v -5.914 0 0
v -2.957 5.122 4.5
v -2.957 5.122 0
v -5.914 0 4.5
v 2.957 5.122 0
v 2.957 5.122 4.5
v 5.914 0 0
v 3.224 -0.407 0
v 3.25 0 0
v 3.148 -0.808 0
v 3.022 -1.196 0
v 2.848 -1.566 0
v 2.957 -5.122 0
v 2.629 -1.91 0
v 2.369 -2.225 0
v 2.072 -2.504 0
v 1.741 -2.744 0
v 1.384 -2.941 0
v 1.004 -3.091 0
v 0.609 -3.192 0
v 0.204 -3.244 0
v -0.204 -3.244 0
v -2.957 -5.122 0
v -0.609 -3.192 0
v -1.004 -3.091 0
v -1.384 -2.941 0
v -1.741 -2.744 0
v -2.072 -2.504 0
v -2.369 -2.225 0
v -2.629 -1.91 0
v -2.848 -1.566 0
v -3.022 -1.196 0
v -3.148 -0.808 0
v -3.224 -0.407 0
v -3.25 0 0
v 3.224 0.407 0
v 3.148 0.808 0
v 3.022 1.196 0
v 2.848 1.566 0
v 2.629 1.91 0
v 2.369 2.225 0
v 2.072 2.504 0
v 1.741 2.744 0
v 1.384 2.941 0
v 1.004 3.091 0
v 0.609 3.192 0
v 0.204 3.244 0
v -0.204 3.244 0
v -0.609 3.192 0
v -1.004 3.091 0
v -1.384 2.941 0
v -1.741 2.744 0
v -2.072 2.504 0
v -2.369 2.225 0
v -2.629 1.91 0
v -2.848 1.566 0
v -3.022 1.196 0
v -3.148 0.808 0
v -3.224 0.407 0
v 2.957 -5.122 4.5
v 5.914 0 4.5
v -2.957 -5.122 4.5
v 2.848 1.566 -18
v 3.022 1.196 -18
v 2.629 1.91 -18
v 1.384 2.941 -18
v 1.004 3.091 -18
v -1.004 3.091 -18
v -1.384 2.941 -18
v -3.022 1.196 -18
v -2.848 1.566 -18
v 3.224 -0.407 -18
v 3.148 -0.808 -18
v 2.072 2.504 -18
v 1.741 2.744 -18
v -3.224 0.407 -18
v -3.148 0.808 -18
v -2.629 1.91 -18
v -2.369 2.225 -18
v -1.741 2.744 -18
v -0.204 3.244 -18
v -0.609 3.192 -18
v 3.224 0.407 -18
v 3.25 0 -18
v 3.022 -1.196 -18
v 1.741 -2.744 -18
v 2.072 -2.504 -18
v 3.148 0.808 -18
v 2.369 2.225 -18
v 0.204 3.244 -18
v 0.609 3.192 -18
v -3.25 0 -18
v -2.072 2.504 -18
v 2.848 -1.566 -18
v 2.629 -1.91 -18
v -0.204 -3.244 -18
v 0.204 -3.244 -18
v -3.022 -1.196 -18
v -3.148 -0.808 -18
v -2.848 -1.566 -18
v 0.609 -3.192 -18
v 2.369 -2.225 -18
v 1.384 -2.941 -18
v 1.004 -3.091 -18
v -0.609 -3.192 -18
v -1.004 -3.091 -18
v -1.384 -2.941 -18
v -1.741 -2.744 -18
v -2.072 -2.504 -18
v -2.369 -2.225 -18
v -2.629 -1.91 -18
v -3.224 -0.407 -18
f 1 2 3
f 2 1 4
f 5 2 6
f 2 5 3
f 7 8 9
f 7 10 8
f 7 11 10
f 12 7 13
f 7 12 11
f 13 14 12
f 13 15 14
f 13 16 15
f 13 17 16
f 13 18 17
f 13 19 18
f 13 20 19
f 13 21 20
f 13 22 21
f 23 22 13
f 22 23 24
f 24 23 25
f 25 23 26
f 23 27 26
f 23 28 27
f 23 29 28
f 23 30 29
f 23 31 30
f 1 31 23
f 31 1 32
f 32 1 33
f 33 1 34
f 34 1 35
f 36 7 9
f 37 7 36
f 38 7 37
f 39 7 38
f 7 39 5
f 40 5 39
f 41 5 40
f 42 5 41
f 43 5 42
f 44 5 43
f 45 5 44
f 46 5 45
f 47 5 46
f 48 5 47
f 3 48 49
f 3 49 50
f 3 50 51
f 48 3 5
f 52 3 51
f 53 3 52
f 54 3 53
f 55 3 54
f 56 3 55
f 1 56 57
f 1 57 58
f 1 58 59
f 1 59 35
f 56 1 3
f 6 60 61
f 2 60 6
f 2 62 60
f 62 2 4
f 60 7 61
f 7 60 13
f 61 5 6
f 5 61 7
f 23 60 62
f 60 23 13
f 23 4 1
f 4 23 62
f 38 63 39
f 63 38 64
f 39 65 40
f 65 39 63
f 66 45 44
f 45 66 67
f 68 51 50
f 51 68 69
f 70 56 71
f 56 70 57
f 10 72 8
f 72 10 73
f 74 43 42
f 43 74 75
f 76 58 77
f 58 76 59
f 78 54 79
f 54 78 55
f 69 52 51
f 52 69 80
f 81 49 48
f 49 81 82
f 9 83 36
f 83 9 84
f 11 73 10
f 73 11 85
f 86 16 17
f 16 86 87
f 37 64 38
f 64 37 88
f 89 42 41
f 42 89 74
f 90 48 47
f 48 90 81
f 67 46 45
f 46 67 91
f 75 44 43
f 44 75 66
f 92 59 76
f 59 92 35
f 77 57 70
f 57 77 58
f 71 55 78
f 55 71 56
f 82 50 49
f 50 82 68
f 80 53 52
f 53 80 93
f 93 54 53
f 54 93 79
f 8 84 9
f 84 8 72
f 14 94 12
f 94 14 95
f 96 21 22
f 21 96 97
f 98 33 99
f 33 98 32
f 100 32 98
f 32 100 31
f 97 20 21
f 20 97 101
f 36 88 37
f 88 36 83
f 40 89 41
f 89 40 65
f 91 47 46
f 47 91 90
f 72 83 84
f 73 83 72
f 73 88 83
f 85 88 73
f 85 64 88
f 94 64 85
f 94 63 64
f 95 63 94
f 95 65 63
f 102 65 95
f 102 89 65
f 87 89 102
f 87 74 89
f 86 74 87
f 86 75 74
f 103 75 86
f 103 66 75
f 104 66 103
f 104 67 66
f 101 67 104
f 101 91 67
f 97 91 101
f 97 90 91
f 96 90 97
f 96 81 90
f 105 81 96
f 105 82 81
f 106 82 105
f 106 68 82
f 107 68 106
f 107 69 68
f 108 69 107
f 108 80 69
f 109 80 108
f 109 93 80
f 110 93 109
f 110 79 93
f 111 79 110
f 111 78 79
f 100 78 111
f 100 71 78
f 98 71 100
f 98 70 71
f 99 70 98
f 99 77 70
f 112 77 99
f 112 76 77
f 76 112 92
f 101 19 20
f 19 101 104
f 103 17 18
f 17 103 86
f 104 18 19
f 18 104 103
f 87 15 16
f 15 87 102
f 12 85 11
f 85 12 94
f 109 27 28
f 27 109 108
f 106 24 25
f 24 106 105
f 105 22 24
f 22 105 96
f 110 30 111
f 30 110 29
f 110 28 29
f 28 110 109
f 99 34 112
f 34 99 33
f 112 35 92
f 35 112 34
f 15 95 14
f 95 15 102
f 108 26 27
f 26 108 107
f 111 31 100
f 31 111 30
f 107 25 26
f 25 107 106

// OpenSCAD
$fn = 50;


difference() {
	union() {
		translate(v = [0, 0, 0]) {
			rotate(a = [0, 0, 0]) {
				translate(v = [0, 0, 0]) {
					rotate(a = [0, 0, 0]) {
						linear_extrude(height = 4.5000000000) {
							polygon(points = [[5.9142500000, 0.0000000000], [2.9571250000, 5.1218907443], [-2.9571250000, 5.1218907443], [-5.9142500000, 0.0000000000], [-2.9571250000, -5.1218907443], [2.9571250000, -5.1218907443]]);
						}
					}
				}
			}
		}
		translate(v = [0, 0, -18]) {
			rotate(a = [0, 0, 0]) {
				cylinder(h = 18, r = 3.2500000000);
			}
		}
	}
	union();
}
